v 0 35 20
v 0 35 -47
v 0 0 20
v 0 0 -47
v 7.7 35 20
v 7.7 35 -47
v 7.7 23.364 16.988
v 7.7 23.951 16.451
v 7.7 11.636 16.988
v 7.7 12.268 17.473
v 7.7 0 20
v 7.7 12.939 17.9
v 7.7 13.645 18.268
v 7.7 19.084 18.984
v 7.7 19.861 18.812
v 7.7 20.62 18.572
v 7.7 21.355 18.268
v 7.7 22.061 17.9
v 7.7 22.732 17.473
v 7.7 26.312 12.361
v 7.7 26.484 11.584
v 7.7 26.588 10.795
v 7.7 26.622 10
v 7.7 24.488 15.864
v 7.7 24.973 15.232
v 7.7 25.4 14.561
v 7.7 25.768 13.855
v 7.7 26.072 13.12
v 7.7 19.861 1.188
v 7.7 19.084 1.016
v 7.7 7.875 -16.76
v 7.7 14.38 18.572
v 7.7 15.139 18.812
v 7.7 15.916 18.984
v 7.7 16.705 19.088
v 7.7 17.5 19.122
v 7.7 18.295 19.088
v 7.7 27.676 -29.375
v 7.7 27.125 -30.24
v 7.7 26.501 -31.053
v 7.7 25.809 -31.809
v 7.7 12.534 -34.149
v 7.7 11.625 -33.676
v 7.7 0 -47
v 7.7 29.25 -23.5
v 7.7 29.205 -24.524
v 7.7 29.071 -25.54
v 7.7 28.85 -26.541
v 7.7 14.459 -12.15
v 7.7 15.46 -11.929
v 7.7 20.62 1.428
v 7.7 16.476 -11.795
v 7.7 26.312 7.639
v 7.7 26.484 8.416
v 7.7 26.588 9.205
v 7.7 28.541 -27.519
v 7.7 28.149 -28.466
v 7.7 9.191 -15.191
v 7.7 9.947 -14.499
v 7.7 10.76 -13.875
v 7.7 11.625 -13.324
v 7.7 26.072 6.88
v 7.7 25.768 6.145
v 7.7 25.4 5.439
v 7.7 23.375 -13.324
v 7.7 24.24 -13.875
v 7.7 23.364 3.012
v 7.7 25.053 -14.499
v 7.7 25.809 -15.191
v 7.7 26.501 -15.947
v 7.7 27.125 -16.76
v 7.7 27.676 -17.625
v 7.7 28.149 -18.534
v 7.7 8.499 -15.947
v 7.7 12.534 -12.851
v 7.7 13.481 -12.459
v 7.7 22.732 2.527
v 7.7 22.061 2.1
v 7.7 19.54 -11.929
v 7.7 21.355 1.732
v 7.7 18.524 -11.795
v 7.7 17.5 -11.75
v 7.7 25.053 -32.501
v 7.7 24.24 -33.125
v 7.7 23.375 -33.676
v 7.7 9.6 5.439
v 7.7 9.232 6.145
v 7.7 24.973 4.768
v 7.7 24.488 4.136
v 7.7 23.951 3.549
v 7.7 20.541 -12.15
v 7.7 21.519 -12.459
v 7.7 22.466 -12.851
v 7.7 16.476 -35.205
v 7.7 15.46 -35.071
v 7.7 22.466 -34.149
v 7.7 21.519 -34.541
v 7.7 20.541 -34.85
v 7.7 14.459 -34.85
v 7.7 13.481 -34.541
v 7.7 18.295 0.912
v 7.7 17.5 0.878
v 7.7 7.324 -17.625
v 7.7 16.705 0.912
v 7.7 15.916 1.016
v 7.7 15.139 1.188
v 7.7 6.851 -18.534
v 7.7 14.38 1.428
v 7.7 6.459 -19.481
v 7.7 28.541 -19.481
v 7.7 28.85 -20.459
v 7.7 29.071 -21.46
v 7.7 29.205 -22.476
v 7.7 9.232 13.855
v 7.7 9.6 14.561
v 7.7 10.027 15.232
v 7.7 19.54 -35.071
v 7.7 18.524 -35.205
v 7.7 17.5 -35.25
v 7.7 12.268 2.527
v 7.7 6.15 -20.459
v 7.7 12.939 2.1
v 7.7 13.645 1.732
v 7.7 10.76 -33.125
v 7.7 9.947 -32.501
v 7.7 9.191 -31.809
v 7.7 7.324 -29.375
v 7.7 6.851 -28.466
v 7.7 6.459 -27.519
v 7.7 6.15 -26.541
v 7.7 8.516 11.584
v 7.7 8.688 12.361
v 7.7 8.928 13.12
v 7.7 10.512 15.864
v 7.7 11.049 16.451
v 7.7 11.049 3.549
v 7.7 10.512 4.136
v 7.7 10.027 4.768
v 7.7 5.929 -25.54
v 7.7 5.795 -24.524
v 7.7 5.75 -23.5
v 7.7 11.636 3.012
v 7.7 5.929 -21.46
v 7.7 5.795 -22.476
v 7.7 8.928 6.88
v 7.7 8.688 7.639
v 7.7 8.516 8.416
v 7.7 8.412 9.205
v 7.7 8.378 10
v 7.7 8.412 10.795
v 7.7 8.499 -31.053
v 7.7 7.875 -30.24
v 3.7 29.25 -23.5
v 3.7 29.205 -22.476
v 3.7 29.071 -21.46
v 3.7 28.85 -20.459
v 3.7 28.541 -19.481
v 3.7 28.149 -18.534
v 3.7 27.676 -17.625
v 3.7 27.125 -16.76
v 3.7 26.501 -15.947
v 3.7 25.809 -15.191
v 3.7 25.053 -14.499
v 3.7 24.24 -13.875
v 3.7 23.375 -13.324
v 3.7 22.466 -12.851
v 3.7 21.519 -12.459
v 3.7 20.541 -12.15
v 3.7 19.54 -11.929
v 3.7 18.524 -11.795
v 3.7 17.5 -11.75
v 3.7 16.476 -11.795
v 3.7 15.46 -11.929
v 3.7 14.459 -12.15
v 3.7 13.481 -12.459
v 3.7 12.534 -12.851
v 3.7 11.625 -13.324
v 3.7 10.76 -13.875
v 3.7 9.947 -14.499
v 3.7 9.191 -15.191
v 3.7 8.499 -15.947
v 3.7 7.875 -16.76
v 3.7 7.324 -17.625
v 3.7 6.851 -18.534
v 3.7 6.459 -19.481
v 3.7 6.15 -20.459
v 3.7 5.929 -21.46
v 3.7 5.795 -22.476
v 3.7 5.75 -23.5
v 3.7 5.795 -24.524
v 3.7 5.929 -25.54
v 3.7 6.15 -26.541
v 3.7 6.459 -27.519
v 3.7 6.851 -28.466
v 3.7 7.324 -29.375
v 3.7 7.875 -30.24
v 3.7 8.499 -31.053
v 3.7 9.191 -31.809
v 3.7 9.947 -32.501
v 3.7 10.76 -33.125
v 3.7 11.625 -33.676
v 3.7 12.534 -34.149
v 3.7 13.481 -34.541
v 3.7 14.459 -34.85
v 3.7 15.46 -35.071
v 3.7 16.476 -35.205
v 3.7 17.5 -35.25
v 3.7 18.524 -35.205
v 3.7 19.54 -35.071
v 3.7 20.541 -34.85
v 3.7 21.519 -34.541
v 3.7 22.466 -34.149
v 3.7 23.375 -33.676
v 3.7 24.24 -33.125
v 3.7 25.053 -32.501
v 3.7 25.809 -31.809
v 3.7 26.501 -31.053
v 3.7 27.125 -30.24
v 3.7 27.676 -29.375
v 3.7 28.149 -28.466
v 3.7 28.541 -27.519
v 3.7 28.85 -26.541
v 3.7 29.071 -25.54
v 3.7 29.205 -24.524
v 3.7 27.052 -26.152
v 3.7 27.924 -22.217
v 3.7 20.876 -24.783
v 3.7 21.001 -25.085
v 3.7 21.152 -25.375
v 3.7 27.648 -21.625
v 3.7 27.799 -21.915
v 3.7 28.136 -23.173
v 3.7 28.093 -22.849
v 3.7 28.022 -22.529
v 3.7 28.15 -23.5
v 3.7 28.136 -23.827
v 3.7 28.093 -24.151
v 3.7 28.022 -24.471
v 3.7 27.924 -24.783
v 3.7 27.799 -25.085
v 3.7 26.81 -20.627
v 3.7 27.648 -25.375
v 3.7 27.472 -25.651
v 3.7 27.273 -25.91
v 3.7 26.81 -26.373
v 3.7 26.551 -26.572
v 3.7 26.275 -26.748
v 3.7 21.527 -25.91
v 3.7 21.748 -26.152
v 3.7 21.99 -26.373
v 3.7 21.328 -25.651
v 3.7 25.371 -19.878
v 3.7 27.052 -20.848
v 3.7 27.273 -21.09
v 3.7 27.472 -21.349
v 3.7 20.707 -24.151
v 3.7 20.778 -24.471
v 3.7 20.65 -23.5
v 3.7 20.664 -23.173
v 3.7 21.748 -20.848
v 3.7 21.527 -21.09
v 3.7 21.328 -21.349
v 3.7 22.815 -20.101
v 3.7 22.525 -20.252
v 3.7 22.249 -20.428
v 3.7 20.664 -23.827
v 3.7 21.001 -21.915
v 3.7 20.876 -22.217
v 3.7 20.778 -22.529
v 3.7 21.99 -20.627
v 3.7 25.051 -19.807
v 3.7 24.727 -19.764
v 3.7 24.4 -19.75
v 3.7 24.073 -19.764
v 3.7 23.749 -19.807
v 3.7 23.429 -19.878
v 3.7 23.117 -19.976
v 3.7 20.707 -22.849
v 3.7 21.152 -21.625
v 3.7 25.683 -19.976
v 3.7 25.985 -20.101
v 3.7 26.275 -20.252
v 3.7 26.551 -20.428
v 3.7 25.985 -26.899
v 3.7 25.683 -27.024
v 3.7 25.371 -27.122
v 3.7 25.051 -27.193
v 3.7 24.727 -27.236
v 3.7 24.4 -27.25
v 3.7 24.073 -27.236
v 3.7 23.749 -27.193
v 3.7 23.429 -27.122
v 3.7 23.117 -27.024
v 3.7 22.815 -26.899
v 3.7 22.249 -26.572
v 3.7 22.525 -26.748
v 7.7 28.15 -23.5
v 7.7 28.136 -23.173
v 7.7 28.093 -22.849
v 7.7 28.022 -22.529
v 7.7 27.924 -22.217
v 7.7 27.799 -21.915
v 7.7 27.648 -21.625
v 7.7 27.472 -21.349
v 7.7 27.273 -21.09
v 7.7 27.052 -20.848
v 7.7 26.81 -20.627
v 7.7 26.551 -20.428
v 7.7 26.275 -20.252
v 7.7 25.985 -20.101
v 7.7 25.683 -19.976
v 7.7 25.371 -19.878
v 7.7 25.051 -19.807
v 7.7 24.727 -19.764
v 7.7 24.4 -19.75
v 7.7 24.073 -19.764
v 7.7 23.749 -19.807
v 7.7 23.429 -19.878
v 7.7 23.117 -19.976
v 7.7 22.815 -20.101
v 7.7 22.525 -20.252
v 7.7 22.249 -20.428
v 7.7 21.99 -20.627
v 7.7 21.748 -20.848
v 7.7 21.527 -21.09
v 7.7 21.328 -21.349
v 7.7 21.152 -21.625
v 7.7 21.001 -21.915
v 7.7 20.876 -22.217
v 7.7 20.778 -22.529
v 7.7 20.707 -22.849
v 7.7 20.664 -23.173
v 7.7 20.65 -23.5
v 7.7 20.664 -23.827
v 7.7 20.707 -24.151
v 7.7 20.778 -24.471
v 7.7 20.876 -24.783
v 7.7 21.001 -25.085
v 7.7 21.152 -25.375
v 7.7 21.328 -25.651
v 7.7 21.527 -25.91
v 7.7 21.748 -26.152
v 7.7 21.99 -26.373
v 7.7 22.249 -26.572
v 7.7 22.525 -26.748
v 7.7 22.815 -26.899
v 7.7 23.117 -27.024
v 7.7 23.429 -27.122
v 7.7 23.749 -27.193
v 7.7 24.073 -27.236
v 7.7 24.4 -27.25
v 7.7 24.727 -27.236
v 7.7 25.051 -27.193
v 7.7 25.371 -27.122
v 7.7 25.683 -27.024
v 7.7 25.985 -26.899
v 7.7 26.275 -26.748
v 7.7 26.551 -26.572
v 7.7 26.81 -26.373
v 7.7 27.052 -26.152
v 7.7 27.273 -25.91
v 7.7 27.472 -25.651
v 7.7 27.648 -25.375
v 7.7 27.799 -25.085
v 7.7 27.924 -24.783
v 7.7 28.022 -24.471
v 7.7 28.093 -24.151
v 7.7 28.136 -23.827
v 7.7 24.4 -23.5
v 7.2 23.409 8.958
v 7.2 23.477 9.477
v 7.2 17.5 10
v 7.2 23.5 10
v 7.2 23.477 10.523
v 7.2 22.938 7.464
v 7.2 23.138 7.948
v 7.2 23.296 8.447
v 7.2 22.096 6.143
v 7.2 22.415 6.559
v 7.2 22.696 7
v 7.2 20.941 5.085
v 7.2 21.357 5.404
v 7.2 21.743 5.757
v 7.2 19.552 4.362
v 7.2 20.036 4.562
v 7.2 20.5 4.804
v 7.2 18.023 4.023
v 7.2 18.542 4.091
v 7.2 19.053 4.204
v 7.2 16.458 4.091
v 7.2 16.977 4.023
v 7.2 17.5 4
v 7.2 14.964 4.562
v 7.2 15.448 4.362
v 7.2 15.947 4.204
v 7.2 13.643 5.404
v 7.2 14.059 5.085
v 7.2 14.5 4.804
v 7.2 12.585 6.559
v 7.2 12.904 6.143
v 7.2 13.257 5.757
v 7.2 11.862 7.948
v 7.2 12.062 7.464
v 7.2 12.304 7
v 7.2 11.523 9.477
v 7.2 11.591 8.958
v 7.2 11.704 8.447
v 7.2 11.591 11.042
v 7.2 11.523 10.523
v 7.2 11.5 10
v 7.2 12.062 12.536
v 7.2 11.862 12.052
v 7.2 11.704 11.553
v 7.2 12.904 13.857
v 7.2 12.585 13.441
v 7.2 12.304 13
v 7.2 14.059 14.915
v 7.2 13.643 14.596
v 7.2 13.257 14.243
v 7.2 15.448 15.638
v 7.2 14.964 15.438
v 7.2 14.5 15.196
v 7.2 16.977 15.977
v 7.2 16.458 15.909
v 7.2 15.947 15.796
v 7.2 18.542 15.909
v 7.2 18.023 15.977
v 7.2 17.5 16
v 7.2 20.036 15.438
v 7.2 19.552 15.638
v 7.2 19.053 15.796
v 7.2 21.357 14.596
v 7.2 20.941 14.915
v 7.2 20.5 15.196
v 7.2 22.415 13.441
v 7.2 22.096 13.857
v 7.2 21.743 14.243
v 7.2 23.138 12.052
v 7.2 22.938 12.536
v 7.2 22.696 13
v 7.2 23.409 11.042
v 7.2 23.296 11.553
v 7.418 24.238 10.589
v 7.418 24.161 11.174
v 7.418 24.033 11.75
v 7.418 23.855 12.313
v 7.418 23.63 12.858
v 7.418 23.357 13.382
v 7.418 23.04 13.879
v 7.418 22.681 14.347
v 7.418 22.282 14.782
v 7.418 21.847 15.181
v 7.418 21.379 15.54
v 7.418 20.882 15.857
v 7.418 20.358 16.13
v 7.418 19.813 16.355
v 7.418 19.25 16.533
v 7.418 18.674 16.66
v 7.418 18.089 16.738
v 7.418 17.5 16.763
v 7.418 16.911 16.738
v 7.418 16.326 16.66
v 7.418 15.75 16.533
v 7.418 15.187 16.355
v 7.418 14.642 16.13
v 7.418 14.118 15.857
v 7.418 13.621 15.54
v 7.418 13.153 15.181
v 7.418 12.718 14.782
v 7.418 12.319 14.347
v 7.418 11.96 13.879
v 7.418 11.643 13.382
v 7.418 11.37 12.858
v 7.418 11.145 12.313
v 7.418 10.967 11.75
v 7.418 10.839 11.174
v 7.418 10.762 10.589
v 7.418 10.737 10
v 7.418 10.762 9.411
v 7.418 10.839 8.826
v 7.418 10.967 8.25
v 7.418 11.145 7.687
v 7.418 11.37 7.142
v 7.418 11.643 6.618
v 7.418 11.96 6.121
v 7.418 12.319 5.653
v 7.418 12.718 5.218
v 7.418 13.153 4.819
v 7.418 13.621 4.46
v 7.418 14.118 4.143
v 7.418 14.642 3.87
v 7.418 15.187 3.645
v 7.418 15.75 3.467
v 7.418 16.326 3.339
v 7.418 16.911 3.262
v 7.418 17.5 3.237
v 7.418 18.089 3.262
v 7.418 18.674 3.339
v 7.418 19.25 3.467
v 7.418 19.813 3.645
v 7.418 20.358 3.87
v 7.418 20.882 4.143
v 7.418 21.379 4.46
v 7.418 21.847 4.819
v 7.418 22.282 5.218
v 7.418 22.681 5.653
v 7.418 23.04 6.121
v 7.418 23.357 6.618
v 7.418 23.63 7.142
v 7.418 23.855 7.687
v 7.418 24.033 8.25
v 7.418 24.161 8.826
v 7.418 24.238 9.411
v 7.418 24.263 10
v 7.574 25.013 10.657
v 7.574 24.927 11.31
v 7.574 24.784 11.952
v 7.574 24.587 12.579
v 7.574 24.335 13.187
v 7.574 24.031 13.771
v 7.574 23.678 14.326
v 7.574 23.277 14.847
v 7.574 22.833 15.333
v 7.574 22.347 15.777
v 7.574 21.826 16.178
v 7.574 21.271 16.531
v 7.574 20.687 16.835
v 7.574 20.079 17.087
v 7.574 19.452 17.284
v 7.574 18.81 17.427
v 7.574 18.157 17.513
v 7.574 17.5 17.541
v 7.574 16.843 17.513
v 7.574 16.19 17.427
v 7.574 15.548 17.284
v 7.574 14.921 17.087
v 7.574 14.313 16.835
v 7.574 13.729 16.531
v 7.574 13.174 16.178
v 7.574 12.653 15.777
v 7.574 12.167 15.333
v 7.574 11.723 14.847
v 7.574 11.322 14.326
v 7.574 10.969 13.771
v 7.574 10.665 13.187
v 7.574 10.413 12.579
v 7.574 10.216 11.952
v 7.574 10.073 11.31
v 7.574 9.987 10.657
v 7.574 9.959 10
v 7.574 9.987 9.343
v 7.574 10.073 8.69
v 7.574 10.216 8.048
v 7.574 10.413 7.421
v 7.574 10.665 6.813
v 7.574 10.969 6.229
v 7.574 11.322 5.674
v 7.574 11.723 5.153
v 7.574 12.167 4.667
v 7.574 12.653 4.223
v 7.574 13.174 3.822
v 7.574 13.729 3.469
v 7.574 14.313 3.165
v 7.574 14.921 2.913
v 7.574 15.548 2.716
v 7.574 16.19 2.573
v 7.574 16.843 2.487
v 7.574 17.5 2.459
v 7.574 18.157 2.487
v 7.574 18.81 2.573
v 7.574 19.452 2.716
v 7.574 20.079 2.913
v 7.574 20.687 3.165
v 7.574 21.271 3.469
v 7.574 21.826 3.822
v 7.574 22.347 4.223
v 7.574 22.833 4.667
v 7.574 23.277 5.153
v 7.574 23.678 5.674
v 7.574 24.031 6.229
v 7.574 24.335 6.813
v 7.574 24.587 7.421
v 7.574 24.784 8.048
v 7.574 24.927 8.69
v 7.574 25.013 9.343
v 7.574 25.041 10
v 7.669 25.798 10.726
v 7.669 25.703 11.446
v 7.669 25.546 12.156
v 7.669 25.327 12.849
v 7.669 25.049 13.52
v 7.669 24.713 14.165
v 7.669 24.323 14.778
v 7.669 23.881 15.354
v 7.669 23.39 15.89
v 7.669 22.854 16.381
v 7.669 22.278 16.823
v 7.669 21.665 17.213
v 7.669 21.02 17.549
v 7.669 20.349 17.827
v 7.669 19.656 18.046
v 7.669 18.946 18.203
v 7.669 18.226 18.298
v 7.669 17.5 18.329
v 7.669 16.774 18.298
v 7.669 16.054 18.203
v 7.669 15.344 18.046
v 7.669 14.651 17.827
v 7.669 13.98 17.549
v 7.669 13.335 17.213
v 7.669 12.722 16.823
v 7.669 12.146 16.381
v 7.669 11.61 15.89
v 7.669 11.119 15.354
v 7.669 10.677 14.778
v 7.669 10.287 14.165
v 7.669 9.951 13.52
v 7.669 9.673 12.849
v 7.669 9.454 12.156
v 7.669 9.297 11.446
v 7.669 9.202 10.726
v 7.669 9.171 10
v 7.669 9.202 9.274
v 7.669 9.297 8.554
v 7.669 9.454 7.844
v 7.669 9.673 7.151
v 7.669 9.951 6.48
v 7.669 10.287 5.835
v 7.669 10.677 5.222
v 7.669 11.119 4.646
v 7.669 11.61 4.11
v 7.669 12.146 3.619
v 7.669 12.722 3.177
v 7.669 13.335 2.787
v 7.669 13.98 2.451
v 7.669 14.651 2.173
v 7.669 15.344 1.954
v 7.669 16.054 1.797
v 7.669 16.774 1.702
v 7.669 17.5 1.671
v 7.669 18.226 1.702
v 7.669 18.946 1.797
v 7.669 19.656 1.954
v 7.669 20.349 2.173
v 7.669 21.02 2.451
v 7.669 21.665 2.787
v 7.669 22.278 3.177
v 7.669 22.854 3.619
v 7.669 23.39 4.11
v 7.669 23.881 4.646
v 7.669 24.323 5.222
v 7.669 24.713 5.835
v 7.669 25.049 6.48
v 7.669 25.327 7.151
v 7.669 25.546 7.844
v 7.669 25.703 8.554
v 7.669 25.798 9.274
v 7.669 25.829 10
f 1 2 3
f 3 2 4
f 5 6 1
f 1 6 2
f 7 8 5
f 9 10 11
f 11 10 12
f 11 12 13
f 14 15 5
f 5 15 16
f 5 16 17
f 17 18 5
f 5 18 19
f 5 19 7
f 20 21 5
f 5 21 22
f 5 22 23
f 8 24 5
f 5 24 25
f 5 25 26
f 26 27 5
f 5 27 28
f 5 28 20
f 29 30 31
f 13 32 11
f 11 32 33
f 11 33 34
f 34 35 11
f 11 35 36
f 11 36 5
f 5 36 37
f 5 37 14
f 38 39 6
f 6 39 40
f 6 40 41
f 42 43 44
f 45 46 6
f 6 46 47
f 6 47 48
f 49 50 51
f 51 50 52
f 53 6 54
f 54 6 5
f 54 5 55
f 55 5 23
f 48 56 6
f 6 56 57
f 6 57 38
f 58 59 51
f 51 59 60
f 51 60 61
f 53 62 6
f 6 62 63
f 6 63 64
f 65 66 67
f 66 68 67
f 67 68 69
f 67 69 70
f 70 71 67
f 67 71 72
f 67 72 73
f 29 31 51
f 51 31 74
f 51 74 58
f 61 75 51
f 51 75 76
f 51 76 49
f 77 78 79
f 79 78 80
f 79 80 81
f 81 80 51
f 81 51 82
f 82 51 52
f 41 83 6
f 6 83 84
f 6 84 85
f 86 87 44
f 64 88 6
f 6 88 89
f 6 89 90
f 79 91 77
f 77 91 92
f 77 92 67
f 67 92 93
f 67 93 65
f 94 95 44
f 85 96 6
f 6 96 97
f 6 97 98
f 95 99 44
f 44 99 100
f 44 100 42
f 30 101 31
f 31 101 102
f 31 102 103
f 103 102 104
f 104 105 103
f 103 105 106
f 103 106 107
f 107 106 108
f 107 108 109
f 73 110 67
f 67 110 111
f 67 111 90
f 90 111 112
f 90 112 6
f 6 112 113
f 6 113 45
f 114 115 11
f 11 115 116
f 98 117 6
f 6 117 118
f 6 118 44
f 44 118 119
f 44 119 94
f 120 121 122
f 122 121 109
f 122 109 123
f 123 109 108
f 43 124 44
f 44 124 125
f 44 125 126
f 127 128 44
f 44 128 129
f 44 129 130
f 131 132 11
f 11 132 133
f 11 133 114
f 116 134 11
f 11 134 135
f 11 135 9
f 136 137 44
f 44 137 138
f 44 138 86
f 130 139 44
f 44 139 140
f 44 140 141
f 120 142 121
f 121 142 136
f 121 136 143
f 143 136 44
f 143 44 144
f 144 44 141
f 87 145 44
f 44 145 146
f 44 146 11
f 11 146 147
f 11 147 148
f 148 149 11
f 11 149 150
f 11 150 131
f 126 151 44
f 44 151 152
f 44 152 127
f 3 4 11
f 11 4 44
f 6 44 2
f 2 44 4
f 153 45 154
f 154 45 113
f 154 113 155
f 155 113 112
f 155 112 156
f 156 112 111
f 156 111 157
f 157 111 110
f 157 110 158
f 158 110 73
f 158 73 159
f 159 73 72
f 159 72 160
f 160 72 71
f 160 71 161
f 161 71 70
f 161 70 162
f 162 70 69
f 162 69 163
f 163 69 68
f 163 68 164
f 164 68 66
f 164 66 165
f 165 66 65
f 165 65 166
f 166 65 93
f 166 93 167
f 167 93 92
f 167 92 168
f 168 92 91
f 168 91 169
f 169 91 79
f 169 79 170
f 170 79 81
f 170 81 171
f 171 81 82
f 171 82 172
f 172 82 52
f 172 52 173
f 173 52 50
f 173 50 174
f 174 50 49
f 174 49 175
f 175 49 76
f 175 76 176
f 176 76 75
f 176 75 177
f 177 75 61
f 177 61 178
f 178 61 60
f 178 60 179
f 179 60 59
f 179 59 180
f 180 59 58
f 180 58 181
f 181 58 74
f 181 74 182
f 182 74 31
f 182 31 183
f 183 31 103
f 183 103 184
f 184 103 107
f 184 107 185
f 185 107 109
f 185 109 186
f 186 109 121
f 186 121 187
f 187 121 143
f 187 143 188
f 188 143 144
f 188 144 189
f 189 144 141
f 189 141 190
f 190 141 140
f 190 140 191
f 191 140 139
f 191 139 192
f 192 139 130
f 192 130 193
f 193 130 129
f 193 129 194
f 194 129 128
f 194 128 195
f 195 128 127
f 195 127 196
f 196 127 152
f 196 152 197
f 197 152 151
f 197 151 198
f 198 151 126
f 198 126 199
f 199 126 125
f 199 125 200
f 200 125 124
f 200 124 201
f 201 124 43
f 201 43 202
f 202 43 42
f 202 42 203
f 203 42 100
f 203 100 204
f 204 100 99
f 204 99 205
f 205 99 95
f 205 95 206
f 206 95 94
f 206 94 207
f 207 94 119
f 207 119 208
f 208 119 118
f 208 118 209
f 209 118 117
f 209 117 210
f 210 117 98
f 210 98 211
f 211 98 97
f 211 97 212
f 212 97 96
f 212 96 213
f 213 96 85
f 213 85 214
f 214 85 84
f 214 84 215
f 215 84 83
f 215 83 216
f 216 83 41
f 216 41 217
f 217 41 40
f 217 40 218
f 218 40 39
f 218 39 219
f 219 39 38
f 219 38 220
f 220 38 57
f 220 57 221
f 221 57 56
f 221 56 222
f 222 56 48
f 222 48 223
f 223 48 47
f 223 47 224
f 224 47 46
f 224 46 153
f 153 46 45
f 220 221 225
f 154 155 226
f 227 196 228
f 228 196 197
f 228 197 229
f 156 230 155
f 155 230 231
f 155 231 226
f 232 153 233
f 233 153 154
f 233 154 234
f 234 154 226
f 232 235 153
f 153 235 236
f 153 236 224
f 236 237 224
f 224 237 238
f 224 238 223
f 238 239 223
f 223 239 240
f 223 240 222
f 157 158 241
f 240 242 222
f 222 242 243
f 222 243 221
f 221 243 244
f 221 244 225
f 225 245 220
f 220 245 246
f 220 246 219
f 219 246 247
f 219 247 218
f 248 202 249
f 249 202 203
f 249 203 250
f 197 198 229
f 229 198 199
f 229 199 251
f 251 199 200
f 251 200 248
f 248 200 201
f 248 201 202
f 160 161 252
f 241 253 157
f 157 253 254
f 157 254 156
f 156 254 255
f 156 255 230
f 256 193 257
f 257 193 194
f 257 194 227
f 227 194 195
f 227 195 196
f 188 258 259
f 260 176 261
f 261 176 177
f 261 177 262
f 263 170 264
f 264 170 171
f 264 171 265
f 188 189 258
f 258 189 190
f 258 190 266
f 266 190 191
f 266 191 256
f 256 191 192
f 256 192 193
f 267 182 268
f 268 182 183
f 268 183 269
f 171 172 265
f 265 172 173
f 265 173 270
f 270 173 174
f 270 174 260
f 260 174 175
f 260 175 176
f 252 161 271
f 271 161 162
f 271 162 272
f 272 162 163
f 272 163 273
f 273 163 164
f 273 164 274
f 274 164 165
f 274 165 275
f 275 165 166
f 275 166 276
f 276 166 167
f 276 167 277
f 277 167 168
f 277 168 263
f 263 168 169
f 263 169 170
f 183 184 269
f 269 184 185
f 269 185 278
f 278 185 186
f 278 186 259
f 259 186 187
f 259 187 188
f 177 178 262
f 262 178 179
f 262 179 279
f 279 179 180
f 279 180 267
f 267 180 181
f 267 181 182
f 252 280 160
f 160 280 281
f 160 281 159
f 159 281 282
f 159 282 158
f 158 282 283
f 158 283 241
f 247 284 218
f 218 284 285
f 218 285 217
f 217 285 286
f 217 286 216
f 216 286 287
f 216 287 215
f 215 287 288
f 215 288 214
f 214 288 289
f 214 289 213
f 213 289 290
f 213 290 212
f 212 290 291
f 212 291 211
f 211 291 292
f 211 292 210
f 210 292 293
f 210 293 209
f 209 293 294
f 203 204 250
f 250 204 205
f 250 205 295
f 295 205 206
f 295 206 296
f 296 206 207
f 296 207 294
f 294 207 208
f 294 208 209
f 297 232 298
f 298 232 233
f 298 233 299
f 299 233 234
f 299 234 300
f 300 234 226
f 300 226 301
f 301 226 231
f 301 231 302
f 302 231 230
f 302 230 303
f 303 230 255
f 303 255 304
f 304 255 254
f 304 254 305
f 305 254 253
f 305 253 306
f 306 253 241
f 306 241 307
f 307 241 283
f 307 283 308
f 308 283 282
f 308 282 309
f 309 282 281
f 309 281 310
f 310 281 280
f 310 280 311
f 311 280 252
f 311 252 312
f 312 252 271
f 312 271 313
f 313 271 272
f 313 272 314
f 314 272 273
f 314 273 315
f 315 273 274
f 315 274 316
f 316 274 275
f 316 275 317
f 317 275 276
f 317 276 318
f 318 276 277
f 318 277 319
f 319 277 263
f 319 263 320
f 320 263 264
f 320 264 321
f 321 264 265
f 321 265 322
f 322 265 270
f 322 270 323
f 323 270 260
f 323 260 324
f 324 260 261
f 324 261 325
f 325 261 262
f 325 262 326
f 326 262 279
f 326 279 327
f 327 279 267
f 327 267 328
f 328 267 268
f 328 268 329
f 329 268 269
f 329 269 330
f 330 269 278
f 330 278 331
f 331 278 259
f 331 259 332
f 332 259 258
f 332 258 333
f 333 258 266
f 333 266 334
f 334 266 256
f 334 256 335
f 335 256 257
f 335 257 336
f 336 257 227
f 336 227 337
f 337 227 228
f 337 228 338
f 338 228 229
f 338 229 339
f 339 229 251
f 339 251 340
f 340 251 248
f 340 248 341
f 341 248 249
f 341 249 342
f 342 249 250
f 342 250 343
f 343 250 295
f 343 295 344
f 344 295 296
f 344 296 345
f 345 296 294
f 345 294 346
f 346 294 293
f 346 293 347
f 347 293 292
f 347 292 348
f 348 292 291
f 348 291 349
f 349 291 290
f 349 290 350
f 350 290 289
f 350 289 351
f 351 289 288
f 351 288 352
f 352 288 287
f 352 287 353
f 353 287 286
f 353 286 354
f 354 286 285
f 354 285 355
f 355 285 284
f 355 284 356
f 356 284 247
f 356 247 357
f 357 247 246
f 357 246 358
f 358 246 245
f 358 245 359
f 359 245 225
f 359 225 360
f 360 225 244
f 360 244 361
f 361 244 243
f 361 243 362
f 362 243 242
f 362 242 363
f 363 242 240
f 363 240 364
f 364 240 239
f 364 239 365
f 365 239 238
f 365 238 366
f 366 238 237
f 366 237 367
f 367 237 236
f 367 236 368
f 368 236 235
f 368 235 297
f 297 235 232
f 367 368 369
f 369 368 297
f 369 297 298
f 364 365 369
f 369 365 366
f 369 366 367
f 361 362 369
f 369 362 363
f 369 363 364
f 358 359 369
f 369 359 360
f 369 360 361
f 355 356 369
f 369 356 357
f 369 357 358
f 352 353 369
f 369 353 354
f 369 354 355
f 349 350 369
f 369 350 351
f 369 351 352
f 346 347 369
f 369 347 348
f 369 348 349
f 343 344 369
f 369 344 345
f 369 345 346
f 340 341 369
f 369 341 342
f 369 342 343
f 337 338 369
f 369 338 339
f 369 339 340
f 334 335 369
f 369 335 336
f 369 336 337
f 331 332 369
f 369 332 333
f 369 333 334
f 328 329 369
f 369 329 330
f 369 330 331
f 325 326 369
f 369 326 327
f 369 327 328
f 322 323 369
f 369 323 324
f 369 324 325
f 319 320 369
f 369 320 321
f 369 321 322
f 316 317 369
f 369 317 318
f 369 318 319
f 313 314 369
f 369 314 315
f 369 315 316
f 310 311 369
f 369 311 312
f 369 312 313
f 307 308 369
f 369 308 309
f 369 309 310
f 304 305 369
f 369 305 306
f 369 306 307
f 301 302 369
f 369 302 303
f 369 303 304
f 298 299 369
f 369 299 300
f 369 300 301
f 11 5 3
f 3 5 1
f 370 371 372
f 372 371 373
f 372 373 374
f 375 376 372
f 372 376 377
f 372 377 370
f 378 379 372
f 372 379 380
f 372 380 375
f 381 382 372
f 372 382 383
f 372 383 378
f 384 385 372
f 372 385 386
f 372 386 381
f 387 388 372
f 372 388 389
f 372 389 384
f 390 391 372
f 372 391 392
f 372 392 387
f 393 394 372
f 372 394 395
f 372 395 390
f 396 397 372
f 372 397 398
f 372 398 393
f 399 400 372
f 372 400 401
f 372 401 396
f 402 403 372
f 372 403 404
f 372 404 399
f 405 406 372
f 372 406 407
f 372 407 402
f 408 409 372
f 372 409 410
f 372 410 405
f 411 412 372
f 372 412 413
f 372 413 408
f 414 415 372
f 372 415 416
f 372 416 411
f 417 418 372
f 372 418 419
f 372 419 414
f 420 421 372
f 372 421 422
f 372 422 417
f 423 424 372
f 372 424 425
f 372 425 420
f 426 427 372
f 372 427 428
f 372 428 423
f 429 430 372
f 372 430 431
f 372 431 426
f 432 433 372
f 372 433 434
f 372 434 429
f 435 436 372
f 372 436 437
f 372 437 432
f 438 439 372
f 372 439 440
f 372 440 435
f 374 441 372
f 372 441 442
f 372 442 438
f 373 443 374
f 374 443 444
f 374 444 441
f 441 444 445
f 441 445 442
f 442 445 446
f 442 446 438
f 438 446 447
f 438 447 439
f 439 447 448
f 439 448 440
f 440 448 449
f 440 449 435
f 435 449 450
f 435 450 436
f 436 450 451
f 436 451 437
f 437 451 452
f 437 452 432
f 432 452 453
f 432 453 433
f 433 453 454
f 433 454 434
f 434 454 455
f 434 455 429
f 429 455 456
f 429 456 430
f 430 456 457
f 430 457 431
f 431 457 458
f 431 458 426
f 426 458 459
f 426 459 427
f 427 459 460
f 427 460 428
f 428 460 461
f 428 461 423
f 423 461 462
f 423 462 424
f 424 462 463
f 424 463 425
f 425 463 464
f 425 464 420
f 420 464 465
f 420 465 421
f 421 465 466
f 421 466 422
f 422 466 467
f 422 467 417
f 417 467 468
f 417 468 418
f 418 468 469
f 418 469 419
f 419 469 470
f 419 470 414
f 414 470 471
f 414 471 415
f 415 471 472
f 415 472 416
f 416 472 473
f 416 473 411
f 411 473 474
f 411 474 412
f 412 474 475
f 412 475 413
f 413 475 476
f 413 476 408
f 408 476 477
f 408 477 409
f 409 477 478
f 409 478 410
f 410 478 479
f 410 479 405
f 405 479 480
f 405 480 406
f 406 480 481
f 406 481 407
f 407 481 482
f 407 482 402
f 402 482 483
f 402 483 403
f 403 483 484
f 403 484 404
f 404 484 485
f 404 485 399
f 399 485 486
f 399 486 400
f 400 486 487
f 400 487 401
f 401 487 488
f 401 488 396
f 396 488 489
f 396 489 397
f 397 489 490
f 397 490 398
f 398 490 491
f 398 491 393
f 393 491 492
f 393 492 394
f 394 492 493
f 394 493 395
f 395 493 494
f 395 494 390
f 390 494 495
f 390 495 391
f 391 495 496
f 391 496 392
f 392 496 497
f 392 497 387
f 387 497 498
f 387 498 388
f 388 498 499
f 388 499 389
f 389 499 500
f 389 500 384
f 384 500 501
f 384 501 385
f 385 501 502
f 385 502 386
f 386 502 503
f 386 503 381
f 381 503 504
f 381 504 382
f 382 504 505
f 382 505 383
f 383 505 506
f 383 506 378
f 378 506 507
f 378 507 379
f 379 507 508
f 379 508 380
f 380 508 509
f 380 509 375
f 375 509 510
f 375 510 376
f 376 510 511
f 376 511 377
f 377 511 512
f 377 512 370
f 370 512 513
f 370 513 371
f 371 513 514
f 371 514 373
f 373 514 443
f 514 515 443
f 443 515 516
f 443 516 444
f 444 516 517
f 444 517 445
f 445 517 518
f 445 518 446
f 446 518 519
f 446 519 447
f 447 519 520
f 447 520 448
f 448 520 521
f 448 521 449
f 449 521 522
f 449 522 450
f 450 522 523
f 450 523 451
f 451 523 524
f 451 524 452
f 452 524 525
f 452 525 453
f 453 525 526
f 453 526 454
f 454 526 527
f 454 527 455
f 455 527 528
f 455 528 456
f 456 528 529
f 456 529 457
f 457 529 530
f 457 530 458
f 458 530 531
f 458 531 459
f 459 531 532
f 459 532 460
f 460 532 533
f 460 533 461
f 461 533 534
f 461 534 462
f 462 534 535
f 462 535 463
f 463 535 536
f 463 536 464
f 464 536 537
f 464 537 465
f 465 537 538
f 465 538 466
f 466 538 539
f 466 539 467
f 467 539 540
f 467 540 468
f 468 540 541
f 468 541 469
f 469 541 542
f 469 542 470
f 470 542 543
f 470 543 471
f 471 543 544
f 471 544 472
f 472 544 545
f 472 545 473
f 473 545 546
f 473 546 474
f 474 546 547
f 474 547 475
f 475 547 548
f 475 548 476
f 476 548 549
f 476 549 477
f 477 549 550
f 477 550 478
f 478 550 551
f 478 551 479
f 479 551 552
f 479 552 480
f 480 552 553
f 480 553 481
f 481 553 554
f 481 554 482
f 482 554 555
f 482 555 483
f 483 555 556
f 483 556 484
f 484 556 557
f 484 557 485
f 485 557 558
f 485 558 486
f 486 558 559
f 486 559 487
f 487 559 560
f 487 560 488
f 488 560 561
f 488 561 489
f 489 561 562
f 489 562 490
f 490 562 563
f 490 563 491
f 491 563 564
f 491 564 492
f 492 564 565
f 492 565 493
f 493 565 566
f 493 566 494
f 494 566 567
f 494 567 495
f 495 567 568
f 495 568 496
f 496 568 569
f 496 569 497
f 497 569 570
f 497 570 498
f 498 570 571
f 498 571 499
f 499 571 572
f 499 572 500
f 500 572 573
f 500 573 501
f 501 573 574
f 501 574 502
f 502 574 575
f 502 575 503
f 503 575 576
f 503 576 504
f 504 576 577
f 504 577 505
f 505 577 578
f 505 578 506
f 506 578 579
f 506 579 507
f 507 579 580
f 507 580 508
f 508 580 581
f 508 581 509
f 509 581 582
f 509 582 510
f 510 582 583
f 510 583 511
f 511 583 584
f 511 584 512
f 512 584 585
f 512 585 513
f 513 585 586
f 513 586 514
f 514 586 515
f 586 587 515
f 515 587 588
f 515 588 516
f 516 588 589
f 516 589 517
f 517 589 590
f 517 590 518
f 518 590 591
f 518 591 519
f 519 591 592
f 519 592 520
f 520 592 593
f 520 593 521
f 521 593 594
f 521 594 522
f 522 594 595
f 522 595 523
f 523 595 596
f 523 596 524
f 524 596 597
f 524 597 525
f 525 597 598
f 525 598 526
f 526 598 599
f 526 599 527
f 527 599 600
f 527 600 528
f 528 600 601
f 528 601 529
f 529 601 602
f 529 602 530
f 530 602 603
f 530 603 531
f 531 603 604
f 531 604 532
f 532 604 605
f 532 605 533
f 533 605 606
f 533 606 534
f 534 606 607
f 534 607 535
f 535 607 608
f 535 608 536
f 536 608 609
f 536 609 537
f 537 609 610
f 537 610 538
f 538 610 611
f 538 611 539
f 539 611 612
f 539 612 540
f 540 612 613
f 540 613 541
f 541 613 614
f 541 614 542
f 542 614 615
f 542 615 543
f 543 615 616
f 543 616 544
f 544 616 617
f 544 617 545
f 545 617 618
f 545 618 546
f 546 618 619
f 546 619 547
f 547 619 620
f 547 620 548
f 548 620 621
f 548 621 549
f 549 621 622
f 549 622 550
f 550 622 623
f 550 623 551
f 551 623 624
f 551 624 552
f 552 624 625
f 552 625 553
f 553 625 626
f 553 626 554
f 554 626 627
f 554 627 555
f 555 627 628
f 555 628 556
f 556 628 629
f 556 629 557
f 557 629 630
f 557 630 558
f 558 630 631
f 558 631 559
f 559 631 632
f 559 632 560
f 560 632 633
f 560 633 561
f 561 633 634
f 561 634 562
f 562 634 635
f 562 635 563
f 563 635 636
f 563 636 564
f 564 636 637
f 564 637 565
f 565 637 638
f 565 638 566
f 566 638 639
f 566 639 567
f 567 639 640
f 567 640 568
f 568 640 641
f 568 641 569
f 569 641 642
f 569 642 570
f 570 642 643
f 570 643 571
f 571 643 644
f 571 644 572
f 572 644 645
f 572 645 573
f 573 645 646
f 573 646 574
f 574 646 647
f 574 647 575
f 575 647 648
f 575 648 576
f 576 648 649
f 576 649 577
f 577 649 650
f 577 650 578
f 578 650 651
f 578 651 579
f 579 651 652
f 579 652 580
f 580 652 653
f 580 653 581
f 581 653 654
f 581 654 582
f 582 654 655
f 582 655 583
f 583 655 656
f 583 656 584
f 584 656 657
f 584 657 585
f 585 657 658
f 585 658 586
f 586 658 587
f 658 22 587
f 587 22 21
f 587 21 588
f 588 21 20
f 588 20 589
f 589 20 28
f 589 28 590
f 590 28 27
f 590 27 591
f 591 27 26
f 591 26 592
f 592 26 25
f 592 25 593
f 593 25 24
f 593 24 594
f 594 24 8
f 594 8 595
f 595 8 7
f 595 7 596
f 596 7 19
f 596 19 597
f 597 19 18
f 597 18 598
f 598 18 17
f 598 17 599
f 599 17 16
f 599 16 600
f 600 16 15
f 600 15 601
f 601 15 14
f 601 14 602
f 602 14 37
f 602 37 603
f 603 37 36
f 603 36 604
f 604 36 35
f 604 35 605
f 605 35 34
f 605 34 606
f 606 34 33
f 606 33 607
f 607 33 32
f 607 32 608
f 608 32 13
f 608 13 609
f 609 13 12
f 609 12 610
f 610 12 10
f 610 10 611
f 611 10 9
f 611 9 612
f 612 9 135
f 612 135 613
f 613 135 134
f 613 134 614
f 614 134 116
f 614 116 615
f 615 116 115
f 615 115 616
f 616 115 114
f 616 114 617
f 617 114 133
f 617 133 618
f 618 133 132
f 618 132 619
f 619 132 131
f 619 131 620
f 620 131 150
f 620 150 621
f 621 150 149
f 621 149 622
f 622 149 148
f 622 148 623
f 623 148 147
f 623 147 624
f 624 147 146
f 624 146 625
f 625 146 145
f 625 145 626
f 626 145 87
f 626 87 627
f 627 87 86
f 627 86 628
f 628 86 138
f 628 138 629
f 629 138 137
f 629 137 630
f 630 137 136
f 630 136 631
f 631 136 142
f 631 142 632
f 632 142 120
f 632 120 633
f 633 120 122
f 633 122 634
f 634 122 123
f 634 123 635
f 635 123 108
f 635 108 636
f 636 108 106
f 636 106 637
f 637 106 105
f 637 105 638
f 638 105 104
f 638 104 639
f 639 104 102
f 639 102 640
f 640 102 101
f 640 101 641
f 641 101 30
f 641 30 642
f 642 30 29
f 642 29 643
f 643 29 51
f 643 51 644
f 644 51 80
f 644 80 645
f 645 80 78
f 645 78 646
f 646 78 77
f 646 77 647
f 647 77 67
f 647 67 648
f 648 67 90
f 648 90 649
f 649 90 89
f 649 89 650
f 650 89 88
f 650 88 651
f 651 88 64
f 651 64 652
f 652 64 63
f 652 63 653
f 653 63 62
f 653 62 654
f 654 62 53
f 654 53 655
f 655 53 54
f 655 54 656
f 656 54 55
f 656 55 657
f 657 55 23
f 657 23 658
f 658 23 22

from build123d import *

# Parameters (mm, degrees)
SKETCH1_W           = 7.7
SKETCH1_H           = 35
BOSS_EXTRUDE1_DEPTH = 47
SKETCH2_R           = 11.75
SKETCH2_R_2         = 3.75
CUT_EXTRUDE1_DEPTH  = 4
SKETCH3_W           = 7.7
SKETCH3_H           = 35
BOSS_EXTRUDE2_DEPTH = 20
SKETCH4_R           = 6
CUT_EXTRUDE2_DEPTH  = 0.5
FILLET1_R           = 10


with BuildPart() as part:
    # Sketch1 → Boss-Extrude1 (new body)
    with BuildSketch(Plane.XY):
        with Locations((3.85, 17.5)):
            Rectangle(SKETCH1_W, SKETCH1_H)
    extrude(amount=-BOSS_EXTRUDE1_DEPTH)

    # Sketch2 → Cut-Extrude1 (cut)
    with BuildSketch(Plane(origin=(7.7, 0, 0), x_dir=(0, 0, -1), z_dir=(1, 0, 0))):
        with Locations(Location((23.5, 17.5, 0), (0, 0, 90))):
            Circle(SKETCH2_R)
        with Locations(Location((23.5, 24.4, 0), (0, 0, 90))):
            Circle(SKETCH2_R_2, mode=Mode.SUBTRACT)
    extrude(amount=-CUT_EXTRUDE1_DEPTH, mode=Mode.SUBTRACT)

    # Sketch3 → Boss-Extrude2 (add)
    with BuildSketch(Plane.XY):
        with Locations((3.85, 17.5)):
            Rectangle(SKETCH3_W, SKETCH3_H)
    extrude(amount=BOSS_EXTRUDE2_DEPTH)

    # Sketch4 → Cut-Extrude2 (cut)
    with BuildSketch(Plane(origin=(7.7, 0, 0), x_dir=(0, 0, -1), z_dir=(1, 0, 0))):
        with Locations(Location((-10, 17.5, 0), (0, 0, 90))):
            Circle(SKETCH4_R)
    extrude(amount=-CUT_EXTRUDE2_DEPTH, mode=Mode.SUBTRACT)

    # Fillet1
    # the kernel refuses this fillet: 10 mm, written as the material it takes off along each edge
    with BuildSketch(Plane(origin=(7.7, 17.5, 10), x_dir=(0, 1, 0), z_dir=(0, 0, -1))) as fillet1_piece_1:
        with BuildLine():
            CenterArc((9.122498999, -10), FILLET1_R, 90, 18.194872339)
            Line((6, -0.5), (5.93755002, -0.31))
            ThreePointArc((5.93755002, -0.31), (5.8, -0.25), (5.8, 0))
            Line((5.8, 0), (6, 0.2))
            Line((6, 0.2), (9.122498999, 0.2))
            Line((9.122498999, 0.2), (9.122498999, 0))
        make_face()
    revolve(axis=Axis((7.7, 17.5, 10), (1, 0, 0)), mode=Mode.SUBTRACT)


solid = part.part
